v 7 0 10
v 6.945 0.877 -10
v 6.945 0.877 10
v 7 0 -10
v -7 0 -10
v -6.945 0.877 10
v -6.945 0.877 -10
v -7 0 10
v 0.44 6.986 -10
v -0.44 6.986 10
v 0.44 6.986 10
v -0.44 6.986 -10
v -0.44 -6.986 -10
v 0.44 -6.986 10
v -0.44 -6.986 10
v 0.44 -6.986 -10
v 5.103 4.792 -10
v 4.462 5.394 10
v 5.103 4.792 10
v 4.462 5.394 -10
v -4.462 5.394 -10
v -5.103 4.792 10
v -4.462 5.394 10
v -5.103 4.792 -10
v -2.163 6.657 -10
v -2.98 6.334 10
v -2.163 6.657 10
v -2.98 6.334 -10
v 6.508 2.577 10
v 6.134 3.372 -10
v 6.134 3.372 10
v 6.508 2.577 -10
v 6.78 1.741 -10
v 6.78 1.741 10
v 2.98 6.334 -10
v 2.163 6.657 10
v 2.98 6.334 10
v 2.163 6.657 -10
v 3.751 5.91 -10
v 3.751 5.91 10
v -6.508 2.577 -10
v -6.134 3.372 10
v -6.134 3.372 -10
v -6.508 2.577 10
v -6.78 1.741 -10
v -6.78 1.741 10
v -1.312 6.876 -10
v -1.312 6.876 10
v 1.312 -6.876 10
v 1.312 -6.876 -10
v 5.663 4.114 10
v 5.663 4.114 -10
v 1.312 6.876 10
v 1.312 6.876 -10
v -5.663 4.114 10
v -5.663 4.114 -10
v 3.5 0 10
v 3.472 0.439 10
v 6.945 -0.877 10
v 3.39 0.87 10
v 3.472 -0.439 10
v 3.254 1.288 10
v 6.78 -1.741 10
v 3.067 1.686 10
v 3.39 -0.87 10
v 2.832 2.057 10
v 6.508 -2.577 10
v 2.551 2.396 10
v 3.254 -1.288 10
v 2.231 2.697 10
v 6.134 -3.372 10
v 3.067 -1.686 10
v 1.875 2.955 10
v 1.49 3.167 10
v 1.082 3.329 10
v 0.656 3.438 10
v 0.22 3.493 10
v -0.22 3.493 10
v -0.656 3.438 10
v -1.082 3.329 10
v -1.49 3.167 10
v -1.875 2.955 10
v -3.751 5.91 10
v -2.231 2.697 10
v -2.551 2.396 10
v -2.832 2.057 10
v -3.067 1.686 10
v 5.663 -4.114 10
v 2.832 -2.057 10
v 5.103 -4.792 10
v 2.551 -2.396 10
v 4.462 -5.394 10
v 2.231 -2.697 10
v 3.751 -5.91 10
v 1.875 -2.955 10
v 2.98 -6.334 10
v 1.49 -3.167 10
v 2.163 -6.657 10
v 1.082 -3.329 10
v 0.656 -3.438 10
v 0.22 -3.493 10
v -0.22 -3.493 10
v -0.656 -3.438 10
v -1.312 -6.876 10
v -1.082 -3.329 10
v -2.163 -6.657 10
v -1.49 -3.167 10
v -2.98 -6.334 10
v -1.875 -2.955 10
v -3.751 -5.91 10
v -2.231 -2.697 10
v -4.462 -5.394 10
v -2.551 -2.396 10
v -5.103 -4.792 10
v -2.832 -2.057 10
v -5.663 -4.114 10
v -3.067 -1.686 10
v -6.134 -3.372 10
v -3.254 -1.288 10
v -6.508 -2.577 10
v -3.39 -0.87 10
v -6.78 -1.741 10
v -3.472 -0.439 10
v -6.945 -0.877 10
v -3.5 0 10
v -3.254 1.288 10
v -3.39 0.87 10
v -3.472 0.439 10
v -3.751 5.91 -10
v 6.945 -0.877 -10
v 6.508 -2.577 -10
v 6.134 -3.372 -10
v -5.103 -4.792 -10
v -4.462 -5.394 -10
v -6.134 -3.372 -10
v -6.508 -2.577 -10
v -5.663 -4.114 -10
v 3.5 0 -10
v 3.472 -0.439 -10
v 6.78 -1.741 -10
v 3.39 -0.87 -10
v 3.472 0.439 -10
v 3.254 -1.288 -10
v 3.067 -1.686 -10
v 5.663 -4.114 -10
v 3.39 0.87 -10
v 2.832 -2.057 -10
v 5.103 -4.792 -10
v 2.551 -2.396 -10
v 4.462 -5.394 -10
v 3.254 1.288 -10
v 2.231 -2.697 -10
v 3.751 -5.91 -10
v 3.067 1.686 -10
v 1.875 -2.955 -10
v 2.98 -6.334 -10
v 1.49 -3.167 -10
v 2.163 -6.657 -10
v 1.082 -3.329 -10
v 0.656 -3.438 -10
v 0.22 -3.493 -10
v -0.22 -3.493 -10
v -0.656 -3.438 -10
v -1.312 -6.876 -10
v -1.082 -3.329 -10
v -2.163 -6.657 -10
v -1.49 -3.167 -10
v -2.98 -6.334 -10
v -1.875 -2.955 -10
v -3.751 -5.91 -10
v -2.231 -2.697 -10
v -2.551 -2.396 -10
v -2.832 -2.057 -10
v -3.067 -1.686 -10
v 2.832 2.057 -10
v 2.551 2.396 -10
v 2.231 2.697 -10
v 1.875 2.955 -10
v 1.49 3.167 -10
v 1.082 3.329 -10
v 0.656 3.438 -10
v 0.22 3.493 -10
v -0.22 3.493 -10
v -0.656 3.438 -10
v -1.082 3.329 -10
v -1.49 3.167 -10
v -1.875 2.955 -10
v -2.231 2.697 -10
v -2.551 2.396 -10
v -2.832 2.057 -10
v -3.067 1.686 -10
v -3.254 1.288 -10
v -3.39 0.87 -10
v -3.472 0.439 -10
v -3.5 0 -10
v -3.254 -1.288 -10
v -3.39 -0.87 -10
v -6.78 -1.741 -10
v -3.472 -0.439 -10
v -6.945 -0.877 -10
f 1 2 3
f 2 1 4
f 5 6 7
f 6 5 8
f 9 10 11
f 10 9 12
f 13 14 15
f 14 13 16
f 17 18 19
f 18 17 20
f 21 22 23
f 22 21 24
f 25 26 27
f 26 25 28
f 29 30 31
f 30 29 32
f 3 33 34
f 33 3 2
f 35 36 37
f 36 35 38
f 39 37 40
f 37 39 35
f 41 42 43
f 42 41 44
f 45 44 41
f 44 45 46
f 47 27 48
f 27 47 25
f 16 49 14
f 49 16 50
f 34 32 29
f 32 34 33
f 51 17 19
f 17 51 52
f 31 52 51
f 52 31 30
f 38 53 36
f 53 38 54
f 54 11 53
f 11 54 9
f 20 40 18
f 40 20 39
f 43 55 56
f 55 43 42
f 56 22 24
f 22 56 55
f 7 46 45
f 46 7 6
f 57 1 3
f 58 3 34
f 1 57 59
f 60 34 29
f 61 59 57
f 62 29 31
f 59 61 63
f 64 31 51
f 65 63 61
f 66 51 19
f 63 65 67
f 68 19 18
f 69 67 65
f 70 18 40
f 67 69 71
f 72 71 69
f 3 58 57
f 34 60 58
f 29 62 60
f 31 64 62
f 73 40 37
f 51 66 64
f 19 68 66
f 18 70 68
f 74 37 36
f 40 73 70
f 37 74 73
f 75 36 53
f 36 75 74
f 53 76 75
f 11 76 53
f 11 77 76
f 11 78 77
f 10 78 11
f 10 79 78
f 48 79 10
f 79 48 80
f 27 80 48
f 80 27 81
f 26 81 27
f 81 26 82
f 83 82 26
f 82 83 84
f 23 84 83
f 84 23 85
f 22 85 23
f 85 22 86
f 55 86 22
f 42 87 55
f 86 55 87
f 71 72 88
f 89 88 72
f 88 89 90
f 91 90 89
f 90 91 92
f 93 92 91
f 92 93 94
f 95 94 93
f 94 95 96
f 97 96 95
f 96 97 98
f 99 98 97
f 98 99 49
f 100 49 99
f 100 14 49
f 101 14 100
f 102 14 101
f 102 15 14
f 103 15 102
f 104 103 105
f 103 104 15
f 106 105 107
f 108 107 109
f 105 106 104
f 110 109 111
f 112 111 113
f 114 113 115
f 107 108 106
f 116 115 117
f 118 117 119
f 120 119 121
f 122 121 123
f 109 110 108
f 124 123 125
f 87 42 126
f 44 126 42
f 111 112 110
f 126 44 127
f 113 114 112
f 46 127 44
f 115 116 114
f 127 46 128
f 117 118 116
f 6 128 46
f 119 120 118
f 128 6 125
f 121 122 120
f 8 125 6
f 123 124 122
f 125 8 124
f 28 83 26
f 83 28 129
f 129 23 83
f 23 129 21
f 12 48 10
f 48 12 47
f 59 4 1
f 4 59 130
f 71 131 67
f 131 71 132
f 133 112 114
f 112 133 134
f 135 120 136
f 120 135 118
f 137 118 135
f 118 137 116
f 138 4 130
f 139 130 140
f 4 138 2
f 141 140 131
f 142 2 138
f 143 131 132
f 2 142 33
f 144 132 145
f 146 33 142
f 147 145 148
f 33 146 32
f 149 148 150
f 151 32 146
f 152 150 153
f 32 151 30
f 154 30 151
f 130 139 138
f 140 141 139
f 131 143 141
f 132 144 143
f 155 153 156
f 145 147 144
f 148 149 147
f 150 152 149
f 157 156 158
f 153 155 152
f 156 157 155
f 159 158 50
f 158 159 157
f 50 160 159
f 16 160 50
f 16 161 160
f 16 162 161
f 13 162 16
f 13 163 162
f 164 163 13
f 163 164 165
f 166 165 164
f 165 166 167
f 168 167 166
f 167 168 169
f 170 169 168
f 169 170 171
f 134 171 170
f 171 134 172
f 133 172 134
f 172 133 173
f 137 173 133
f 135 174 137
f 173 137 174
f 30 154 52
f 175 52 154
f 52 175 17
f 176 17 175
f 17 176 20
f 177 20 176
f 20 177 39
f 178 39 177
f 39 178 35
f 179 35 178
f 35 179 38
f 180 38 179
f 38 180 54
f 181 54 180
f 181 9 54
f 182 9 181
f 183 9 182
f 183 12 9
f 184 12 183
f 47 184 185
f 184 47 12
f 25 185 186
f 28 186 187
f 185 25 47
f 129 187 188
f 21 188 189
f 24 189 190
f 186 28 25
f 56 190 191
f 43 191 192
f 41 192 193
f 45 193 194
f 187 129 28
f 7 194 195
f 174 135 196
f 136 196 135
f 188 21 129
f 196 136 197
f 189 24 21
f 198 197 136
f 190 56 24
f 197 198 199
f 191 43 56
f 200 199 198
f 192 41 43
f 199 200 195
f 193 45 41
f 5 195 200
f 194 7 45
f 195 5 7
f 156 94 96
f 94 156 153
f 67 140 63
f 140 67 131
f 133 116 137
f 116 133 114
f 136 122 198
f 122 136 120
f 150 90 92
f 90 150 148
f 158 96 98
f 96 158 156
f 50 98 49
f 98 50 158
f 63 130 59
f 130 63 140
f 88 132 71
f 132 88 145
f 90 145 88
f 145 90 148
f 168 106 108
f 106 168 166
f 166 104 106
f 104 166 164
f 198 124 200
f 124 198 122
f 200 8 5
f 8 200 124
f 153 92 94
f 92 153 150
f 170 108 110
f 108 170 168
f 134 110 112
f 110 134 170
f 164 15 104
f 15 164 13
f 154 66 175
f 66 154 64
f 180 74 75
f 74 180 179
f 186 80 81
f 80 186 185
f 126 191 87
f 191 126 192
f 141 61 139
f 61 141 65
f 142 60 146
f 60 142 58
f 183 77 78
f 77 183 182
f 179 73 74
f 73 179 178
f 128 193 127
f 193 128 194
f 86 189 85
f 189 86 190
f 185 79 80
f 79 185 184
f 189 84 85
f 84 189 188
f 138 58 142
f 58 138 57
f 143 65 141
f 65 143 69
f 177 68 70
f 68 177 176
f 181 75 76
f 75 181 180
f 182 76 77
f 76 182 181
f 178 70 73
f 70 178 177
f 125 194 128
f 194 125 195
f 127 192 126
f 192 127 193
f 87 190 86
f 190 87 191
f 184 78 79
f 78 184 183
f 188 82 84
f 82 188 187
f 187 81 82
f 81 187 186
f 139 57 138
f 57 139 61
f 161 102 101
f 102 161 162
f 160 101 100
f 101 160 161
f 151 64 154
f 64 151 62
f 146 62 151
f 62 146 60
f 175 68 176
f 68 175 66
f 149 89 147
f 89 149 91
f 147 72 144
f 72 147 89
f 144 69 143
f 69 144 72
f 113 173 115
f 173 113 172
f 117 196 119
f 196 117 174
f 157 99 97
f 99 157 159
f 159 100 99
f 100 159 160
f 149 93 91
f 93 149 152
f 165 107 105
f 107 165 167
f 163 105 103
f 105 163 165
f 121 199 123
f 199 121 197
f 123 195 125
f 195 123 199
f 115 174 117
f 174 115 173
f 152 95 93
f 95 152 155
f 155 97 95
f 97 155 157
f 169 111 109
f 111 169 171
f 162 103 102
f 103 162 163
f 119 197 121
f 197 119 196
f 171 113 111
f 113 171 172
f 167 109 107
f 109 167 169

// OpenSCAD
$fn = 50;


difference() {
	union() {
		translate(v = [0, 0, -10.0000000000]) {
			cylinder(h = 20, r = 7.0000000000);
		}
	}
	union() {
		translate(v = [0, 0, -100.0000000000]) {
			cylinder(h = 200, r = 3.5000000000);
		}
	}
}
